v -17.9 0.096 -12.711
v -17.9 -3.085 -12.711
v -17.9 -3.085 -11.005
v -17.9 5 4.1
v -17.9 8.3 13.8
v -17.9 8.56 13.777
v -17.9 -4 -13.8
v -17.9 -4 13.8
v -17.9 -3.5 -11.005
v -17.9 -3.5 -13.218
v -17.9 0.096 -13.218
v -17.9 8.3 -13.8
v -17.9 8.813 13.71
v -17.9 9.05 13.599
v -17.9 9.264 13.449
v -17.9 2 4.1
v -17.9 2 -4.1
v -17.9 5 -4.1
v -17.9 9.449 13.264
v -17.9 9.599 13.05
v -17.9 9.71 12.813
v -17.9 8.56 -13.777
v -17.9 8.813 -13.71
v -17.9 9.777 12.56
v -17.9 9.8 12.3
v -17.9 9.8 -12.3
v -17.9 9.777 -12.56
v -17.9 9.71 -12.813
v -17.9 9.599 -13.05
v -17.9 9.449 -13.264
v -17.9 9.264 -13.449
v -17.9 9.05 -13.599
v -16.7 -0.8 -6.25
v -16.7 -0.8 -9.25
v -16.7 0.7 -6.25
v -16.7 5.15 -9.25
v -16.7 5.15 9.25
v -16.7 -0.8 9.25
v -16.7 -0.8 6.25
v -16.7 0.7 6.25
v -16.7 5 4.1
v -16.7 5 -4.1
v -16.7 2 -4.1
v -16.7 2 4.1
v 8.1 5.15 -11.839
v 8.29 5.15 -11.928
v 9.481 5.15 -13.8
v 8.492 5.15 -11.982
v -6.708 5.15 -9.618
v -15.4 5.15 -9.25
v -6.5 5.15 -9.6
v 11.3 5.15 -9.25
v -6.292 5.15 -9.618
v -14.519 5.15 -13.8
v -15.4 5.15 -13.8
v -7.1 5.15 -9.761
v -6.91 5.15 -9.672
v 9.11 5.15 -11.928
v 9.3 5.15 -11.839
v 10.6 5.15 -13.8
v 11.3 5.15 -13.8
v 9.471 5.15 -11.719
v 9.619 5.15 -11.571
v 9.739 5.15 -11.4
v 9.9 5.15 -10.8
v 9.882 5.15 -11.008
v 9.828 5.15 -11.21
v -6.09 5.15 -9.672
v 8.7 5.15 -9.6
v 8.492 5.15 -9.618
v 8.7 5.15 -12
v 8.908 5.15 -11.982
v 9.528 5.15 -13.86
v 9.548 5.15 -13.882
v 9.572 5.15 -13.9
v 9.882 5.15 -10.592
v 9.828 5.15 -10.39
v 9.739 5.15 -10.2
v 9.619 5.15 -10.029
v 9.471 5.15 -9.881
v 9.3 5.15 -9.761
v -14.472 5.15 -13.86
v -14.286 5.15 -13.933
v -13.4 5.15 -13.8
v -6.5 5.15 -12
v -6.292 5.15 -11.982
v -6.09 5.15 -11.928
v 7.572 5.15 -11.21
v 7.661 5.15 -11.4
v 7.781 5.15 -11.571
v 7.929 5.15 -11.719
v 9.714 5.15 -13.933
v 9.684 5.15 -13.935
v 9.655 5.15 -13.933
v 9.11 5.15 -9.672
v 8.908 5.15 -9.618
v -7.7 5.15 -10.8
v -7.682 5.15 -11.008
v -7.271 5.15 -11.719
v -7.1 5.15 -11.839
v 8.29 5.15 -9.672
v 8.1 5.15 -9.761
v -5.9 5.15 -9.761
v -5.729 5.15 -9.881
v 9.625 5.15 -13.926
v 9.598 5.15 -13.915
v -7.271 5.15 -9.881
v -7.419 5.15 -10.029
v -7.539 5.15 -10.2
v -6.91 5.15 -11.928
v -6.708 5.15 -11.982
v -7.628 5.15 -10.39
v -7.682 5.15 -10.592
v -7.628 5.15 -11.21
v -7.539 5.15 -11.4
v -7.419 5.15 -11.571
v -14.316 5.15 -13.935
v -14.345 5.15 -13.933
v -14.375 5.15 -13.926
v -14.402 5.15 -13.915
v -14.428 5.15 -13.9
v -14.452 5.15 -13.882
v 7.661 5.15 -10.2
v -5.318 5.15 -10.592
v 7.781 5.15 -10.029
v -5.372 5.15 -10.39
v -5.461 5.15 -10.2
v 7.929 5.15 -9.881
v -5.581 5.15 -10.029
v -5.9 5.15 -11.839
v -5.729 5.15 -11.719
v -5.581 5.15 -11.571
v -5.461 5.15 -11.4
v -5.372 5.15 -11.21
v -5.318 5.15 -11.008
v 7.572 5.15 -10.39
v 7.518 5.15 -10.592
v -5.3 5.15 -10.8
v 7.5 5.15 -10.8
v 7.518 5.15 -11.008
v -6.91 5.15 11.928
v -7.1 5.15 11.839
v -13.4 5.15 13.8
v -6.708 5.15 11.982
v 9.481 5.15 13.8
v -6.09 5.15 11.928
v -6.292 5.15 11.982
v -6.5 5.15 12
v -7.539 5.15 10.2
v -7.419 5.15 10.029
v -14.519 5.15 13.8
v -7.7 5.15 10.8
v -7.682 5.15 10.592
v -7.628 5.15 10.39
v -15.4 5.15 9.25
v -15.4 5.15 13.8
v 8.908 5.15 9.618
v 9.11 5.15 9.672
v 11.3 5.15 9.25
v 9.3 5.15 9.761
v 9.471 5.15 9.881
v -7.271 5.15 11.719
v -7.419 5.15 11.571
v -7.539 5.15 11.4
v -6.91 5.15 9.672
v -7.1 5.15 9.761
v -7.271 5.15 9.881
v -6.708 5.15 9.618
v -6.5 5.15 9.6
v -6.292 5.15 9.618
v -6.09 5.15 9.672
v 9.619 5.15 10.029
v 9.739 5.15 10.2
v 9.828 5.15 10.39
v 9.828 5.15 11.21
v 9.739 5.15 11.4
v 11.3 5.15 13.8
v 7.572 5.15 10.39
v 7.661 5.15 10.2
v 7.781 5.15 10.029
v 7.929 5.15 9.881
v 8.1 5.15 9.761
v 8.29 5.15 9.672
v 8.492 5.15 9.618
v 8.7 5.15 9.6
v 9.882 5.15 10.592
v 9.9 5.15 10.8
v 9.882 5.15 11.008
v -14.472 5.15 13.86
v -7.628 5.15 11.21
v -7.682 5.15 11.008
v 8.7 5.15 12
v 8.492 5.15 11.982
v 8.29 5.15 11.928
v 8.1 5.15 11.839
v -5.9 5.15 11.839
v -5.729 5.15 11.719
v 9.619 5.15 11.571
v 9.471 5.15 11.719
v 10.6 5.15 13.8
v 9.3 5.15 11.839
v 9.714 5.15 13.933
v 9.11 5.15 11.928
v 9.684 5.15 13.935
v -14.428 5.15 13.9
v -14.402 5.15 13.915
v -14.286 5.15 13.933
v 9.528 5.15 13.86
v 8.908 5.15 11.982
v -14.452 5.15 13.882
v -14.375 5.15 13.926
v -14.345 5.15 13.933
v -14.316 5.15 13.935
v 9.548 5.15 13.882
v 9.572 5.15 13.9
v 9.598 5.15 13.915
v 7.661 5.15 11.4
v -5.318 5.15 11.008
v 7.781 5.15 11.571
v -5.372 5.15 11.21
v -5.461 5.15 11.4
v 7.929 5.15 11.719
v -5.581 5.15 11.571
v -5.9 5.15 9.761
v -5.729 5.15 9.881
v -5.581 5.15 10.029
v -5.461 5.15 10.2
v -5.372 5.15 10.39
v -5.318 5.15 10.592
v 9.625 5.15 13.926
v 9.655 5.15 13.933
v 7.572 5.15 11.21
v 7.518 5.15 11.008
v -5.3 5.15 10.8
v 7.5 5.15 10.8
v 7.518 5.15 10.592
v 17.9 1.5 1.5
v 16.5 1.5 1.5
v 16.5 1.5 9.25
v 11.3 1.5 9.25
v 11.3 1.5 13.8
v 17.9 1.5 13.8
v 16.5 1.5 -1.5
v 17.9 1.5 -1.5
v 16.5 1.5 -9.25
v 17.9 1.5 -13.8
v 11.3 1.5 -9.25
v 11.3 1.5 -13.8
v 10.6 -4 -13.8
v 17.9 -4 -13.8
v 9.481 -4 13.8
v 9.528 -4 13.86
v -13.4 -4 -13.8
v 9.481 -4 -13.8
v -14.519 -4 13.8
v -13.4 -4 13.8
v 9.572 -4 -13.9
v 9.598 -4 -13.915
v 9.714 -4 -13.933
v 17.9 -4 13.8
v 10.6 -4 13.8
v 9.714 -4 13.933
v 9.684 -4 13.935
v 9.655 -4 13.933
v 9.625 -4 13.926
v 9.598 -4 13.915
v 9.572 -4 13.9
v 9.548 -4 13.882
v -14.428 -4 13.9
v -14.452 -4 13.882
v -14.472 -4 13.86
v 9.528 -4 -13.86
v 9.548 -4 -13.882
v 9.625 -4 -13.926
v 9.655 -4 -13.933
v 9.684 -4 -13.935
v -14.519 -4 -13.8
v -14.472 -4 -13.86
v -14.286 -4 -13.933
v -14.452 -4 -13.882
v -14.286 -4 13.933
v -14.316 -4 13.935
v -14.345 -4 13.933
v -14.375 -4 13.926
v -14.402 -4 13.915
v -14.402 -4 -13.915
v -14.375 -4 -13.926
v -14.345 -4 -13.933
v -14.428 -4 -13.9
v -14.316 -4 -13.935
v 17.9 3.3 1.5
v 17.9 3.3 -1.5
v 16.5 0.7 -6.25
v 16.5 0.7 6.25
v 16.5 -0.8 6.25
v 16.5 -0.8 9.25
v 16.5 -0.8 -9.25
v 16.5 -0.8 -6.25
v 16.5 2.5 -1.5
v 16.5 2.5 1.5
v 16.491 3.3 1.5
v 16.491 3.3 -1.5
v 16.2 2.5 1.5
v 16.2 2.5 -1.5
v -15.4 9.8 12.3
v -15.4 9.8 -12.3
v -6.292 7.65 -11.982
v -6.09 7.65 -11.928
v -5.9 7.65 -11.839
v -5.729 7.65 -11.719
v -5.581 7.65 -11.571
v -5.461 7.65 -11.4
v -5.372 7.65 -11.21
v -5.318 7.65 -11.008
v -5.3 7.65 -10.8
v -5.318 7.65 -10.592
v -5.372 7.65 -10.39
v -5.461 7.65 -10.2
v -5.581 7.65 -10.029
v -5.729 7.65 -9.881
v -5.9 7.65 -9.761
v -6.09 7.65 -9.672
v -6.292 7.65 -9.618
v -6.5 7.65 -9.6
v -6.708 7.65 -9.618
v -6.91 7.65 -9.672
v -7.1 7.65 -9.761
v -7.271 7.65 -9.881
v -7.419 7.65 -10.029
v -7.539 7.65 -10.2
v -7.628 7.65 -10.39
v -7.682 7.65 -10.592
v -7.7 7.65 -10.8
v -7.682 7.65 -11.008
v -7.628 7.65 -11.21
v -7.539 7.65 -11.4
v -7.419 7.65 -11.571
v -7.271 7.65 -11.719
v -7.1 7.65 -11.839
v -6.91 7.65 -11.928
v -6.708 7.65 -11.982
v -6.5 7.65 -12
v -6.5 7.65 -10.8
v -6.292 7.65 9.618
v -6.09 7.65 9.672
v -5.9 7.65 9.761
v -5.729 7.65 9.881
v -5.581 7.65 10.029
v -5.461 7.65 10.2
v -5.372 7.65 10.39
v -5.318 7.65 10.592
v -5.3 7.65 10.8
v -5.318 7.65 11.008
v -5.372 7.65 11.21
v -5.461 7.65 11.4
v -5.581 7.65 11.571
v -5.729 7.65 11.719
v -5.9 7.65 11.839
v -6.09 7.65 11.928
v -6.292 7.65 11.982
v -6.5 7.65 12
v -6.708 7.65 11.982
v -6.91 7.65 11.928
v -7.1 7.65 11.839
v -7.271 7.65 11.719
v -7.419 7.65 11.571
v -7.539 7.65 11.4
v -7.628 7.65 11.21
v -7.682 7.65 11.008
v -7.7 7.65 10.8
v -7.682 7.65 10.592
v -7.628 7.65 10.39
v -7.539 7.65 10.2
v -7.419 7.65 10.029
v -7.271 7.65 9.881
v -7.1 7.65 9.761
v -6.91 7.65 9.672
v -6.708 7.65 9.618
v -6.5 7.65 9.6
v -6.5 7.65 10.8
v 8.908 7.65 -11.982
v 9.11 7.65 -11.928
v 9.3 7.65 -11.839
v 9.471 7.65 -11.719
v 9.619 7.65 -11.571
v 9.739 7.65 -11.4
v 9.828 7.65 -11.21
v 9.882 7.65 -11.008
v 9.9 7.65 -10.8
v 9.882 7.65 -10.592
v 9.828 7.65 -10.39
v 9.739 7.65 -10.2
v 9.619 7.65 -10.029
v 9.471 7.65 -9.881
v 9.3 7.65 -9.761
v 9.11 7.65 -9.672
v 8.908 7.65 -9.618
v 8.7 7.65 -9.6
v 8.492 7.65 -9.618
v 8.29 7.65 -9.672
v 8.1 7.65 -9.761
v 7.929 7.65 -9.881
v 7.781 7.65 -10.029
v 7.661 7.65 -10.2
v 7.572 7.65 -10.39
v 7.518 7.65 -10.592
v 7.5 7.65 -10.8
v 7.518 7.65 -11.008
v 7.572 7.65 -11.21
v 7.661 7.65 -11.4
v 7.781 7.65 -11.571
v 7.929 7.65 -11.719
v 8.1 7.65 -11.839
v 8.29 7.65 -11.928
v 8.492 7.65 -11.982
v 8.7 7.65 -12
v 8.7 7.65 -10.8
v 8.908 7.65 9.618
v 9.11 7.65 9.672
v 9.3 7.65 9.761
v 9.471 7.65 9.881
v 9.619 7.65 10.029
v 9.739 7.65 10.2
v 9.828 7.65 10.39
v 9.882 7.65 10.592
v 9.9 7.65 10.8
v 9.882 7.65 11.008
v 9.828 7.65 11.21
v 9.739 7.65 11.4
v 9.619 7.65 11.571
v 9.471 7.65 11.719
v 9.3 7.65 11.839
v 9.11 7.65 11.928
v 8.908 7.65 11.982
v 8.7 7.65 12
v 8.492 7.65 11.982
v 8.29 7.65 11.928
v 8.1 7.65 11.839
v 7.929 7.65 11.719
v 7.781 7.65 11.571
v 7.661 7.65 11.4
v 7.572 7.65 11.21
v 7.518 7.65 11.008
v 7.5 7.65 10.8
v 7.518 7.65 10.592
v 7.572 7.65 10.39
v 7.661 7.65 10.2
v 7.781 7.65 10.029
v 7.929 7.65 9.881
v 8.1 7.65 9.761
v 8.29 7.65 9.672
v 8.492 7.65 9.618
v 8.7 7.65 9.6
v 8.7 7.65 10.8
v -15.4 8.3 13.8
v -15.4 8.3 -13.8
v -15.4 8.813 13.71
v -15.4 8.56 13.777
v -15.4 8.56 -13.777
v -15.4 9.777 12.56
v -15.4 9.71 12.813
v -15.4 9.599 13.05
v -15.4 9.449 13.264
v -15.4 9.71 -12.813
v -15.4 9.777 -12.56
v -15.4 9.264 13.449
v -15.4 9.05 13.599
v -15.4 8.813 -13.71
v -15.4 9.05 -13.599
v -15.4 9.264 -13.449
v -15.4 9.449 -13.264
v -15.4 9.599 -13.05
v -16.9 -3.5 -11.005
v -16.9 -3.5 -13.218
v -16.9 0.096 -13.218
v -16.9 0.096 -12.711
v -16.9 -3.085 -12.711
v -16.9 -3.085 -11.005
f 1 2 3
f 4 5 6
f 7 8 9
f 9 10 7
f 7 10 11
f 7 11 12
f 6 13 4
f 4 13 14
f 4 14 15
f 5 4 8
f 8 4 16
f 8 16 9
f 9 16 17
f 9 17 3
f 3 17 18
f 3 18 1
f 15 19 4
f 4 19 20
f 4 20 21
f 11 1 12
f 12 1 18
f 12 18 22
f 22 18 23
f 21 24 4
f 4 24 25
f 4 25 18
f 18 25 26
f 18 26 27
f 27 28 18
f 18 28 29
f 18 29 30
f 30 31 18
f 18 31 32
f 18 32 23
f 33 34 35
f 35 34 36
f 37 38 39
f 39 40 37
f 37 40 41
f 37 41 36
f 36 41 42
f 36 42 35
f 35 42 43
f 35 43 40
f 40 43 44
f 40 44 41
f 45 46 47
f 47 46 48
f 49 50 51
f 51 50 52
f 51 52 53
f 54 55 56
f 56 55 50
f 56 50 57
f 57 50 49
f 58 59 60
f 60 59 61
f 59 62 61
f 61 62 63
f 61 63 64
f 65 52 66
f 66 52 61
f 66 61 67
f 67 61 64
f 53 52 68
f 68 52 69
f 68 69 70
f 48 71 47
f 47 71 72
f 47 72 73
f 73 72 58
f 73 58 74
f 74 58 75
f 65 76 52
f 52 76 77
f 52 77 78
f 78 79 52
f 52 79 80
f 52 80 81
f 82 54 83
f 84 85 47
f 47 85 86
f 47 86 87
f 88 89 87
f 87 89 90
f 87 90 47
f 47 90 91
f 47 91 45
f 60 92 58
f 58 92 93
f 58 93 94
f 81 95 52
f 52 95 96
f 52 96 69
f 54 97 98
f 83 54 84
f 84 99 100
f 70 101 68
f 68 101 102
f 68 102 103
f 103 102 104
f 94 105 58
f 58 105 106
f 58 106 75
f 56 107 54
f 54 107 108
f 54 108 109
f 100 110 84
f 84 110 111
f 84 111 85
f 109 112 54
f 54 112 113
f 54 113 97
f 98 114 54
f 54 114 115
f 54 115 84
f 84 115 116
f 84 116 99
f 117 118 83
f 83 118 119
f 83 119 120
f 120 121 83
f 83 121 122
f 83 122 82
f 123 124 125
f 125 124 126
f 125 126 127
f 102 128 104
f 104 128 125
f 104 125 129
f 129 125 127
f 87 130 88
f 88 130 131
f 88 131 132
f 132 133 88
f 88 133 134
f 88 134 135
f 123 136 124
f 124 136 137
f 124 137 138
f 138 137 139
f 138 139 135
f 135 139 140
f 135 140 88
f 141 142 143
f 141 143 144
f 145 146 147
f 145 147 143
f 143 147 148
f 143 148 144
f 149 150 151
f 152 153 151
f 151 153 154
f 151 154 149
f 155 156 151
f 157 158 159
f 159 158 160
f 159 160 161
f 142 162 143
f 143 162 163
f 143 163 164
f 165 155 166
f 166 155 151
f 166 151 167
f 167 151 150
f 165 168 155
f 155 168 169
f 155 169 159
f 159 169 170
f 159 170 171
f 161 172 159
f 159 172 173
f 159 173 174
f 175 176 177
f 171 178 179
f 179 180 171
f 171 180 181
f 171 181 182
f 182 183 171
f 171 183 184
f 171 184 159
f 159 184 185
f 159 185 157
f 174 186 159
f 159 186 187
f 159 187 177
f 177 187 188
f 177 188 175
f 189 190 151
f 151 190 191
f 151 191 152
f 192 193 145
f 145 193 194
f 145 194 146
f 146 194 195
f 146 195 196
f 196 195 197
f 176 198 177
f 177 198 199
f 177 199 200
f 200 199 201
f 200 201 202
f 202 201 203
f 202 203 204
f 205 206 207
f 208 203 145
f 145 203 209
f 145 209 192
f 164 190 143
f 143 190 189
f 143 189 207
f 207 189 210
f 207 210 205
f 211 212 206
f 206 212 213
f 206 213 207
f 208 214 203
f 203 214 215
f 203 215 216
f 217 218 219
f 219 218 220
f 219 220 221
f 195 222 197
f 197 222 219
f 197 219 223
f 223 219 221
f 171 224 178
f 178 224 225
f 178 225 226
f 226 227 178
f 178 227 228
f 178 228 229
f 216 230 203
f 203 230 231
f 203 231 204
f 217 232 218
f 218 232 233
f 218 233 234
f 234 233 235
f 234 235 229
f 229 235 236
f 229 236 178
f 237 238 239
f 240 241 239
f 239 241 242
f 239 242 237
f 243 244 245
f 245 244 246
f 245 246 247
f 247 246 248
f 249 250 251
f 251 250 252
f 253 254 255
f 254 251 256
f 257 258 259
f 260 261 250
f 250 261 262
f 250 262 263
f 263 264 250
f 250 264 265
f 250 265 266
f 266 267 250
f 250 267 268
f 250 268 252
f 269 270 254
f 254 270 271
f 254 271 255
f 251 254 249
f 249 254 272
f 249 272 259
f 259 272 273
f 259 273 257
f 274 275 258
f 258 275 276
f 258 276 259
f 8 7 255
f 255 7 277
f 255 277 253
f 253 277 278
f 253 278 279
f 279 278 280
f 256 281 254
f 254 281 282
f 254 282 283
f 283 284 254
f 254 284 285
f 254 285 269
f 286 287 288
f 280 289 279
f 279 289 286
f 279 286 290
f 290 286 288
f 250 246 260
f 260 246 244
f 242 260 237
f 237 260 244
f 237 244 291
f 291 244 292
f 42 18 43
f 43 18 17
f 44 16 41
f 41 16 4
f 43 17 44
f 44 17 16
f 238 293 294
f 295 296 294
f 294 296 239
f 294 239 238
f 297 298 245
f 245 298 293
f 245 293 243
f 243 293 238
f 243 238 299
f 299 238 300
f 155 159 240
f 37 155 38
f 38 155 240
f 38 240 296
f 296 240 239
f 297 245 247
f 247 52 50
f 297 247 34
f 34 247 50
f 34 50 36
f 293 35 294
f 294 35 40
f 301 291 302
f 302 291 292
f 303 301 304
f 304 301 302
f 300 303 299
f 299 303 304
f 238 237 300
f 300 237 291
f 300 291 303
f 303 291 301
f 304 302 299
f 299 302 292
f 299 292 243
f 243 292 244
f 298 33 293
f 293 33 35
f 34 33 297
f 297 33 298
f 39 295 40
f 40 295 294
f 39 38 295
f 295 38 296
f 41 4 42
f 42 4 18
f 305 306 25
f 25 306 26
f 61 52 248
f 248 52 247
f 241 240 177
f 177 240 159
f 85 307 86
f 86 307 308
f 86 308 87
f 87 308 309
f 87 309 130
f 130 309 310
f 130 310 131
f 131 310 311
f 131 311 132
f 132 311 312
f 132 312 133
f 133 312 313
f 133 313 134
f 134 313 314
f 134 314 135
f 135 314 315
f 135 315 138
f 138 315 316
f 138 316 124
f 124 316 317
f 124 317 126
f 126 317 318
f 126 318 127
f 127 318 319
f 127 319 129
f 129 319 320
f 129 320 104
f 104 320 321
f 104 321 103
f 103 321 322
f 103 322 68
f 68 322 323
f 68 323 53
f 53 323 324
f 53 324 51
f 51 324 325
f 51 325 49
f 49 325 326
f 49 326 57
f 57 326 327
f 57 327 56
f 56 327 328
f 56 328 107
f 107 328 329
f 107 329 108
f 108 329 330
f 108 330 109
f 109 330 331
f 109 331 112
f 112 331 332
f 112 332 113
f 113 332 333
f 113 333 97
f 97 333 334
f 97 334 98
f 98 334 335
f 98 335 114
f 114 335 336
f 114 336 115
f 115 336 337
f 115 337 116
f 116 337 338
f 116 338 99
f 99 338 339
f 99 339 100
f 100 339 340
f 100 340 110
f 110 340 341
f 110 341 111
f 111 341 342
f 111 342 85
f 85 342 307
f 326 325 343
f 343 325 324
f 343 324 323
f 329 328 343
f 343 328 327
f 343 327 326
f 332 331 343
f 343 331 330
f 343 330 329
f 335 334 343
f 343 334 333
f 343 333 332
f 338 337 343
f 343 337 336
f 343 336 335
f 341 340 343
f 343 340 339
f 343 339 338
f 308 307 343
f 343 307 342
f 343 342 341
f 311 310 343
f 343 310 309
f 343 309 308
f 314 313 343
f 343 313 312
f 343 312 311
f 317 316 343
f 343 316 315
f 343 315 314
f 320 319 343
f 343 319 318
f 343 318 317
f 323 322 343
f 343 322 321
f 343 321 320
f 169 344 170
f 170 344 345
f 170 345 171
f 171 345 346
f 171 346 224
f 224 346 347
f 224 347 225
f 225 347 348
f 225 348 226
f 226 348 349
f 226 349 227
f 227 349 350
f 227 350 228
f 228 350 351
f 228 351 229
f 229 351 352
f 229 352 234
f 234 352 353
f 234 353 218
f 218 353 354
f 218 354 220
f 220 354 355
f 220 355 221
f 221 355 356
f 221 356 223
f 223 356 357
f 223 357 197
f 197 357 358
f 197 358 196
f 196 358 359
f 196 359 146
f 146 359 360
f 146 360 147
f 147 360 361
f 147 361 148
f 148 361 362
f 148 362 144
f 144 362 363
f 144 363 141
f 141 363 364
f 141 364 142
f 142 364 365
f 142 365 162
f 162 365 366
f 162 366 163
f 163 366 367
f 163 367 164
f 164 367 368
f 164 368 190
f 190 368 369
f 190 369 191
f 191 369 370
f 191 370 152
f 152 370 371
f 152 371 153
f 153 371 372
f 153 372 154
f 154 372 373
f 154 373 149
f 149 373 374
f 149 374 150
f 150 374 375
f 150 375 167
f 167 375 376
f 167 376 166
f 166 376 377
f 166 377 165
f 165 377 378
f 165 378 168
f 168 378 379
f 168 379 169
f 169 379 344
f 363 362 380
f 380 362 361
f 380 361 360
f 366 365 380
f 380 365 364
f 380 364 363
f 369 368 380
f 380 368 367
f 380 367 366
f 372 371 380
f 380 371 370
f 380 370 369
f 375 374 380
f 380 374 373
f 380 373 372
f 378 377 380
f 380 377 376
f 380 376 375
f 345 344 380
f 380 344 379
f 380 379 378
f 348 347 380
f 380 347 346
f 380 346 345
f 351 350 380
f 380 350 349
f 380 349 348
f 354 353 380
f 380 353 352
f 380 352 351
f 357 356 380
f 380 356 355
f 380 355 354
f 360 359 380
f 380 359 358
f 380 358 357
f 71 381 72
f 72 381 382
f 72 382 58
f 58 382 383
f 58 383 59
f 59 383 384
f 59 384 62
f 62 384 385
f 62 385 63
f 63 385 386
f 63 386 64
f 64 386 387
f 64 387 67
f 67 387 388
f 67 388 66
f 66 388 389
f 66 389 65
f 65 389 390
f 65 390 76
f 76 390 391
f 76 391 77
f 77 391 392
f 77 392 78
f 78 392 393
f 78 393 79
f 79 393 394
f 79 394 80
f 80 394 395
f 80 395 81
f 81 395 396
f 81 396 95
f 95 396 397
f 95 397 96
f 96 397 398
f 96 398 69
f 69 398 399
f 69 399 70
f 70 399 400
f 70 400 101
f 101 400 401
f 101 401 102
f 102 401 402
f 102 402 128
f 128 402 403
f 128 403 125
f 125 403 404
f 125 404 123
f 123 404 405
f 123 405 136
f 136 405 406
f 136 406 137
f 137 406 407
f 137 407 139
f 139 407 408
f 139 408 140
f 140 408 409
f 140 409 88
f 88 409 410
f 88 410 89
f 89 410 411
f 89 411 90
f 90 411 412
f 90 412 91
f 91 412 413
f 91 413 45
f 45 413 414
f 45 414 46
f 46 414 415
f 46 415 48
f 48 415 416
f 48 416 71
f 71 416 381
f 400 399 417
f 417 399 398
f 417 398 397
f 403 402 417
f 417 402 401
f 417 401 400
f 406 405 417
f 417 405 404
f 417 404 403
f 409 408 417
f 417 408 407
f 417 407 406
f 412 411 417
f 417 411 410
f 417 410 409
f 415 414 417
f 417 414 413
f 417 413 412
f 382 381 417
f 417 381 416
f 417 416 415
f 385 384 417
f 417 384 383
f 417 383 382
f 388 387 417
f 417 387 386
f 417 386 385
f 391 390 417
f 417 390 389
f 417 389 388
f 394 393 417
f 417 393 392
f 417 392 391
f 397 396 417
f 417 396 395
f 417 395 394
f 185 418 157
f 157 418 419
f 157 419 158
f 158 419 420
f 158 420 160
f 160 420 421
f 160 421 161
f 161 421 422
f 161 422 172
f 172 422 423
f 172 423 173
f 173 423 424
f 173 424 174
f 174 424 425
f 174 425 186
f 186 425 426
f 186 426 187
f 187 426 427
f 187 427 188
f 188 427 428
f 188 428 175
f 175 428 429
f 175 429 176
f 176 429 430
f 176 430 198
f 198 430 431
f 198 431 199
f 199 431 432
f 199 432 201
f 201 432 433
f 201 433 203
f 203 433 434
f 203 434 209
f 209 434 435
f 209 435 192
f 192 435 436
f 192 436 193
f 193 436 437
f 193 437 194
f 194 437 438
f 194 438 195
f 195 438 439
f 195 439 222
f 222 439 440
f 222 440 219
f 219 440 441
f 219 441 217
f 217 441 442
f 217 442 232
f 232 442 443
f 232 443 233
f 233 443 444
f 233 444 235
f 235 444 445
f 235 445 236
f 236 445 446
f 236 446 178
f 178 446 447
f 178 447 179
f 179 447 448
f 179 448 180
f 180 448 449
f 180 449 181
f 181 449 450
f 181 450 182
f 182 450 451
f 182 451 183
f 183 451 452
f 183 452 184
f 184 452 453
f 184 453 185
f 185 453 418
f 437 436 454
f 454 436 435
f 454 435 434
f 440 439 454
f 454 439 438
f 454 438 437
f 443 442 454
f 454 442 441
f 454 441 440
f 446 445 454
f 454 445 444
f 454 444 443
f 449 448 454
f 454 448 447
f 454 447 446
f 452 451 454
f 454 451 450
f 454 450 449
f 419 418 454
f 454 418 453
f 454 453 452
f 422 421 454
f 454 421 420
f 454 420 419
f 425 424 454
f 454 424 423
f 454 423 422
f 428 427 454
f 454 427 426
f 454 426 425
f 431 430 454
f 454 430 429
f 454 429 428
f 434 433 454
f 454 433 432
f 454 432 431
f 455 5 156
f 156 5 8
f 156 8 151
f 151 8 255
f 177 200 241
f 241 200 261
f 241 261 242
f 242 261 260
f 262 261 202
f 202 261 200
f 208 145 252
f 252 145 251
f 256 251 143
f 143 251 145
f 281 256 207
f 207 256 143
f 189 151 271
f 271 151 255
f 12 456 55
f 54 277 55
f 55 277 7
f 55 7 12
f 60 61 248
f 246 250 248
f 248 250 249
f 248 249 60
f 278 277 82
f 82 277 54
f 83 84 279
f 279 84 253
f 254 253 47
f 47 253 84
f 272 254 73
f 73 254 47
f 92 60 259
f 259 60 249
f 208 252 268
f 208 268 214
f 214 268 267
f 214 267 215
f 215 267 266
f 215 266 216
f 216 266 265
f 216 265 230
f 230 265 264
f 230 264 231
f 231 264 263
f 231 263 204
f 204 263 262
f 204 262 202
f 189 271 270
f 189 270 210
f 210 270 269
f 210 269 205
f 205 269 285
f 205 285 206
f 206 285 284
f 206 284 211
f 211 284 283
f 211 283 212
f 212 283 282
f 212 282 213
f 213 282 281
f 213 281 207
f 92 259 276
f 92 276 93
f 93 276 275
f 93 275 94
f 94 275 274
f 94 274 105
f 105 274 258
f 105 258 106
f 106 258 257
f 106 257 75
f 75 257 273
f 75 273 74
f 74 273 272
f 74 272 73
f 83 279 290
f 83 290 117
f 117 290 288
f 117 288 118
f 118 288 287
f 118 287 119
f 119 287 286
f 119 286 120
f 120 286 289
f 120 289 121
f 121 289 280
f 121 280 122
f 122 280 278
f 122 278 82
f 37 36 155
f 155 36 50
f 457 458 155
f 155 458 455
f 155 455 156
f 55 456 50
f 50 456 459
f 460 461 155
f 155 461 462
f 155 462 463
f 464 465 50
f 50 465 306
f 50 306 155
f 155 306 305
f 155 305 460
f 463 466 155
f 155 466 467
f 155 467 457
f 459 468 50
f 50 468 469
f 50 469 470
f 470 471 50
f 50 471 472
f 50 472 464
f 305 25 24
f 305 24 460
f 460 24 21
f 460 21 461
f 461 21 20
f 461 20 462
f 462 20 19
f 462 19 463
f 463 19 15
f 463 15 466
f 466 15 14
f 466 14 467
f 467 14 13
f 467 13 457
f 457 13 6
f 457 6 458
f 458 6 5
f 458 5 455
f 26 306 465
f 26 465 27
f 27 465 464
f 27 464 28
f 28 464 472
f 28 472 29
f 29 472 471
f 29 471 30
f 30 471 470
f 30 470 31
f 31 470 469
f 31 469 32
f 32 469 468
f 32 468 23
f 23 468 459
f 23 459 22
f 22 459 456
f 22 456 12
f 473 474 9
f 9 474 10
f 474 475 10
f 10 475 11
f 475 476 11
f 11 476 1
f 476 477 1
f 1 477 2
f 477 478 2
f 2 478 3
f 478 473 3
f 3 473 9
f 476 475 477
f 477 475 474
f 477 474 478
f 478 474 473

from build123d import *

# Parameters (mm, degrees)
SKIZZE2_W                       = 28
SKIZZE2_H                       = 4
AUFSATZ_LINEAR_AUSTRAGEN2_DEPTH = 17.9
SKIZZE4_W                       = 35.8
SKIZZE4_H                       = 28
AUFSATZ_LINEAR_AUSTRAGEN3_DEPTH = 5
SKIZZE7_W                       = 8.2
SKIZZE7_H                       = 3
SCHNITT_LINEAR_AUSTRAGEN4_DEPTH = 1.5
SKIZZE5_W                       = 33.2
SKIZZE5_H                       = 18.5
SCHNITT_LINEAR_AUSTRAGEN2_DEPTH = 4.3
SKIZZE8_W                       = 34.6
SKIZZE8_H                       = 28
SCHNITT_LINEAR_AUSTRAGEN5_DEPTH = 3.5
AUFSATZ_LINEAR_AUSTRAGEN4_DEPTH = 1.5
SKIZZE9_W                       = 33.2
SKIZZE9_H                       = 3
SCHNITT_LINEAR_AUSTRAGEN6_DEPTH = 1.5
SKIZZE11_W                      = 28
SKIZZE11_H                      = 4.8
AUFSATZ_LINEAR_AUSTRAGEN5_DEPTH = 1.2
SKIZZE12_W                      = 28
SKIZZE12_H                      = 4.75
AUFSATZ_LINEAR_AUSTRAGEN6_DEPTH = 3.65
SKIZZE13_R                      = 1.2
AUFSATZ_LINEAR_AUSTRAGEN7_DEPTH = 2.5
LINEARES_MUSTER1_COUNT          = 2
LINEARES_MUSTER1_PITCH          = 15.2
LINEARES_MUSTER1_COUNT_DIR2     = 2
LINEARES_MUSTER1_PITCH_DIR2     = 21.6
SCHNITT_LINEAR_AUSTRAGEN7_DEPTH = 14.8
VERRUNDUNG1_R                   = 0.2
SKIZZE20_W                      = 27.6
SKIZZE20_H                      = 4.65
AUFSATZ_LINEAR_AUSTRAGEN8_DEPTH = 1.3
VERRUNDUNG2_R                   = 1.5
SCHNITT_LINEAR_AUSTRAGEN8_DEPTH = 1


with BuildPart() as part:
    # Skizze2 → Aufsatz-Linear austragen2 (new body, symmetric)
    with BuildSketch(Plane(origin=(0, 0, 0), x_dir=(0, 0, -1), z_dir=(1, 0, 0))):
        with Locations((0, -2)):
            Rectangle(SKIZZE2_W, SKIZZE2_H)
    extrude(amount=AUFSATZ_LINEAR_AUSTRAGEN2_DEPTH, both=True)

    # Skizze4 → Aufsatz-Linear austragen3 (add)
    with BuildSketch(Plane(origin=(0, 0, 0), x_dir=(1, 0, 0), z_dir=(0, 1, 0))):
        Rectangle(SKIZZE4_W, SKIZZE4_H)
    extrude(amount=AUFSATZ_LINEAR_AUSTRAGEN3_DEPTH)

    # Skizze7 → Schnitt-Linear austragen4 (cut)
    with BuildSketch(Plane.ZY.offset(17.9)):
        with Locations((0, 3.5)):
            Rectangle(SKIZZE7_W, SKIZZE7_H)
    extrude(amount=-SCHNITT_LINEAR_AUSTRAGEN4_DEPTH, mode=Mode.SUBTRACT)

    # Skizze5 → Schnitt-Linear austragen2 (cut)
    with BuildSketch(Plane(origin=(0, 5, 0), x_dir=(1, 0, 0), z_dir=(0, 1, 0))):
        with Locations((-0.1, 0)):
            Rectangle(SKIZZE5_W, SKIZZE5_H)
    extrude(amount=-SCHNITT_LINEAR_AUSTRAGEN2_DEPTH, mode=Mode.SUBTRACT)

    # Skizze8 → Schnitt-Linear austragen5 (cut)
    with BuildSketch(Plane(origin=(0, 5, 0), x_dir=(1, 0, 0), z_dir=(0, 1, 0))):
        with Locations((0.6, 0)):
            Rectangle(SKIZZE8_W, SKIZZE8_H)
    extrude(amount=-SCHNITT_LINEAR_AUSTRAGEN5_DEPTH, mode=Mode.SUBTRACT)

    # Skizze10 → Aufsatz-Linear austragen4 (add, symmetric)
    with BuildSketch(Plane.XY):
        Polygon((17.9, 1.5), (16.5, 1.5), (16.5, 2.5), (16.2, 2.5), (16.491176187, 3.3), (17.9, 3.3), align=None)
    extrude(amount=AUFSATZ_LINEAR_AUSTRAGEN4_DEPTH, both=True)

    # Skizze9 → Schnitt-Linear austragen6 (cut)
    with BuildSketch(Plane(origin=(0, 0.7, 0), x_dir=(1, 0, 0), z_dir=(0, 1, 0))):
        with Locations((-0.1, -7.75)):
            Rectangle(SKIZZE9_W, SKIZZE9_H)
        with Locations((-0.1, 7.75)):
            Rectangle(SKIZZE9_W, SKIZZE9_H)
    extrude(amount=-SCHNITT_LINEAR_AUSTRAGEN6_DEPTH, mode=Mode.SUBTRACT)

    # Skizze11 → Aufsatz-Linear austragen5 (add)
    with BuildSketch(Plane.ZY.offset(17.9)):
        with Locations((0, 7.4)):
            Rectangle(SKIZZE11_W, SKIZZE11_H)
    extrude(amount=-AUFSATZ_LINEAR_AUSTRAGEN5_DEPTH)

    # Skizze12 → Aufsatz-Linear austragen6 (add)
    with BuildSketch(Plane(origin=(0, 1.5, 0), x_dir=(1, 0, 0), z_dir=(0, 1, 0))):
        with Locations((-2.7, 11.625)):
            Rectangle(SKIZZE12_W, SKIZZE12_H)
        with Locations((-2.7, -11.625)):
            Rectangle(SKIZZE12_W, SKIZZE12_H)
    extrude(amount=AUFSATZ_LINEAR_AUSTRAGEN6_DEPTH)

    # Skizze13 → Aufsatz-Linear austragen7 (add)
    with BuildSketch(Plane(origin=(0, 5.15, 0), x_dir=(1, 0, 0), z_dir=(0, 1, 0))):
        with Locations((-6.5, 10.8)):
            Circle(SKIZZE13_R)
    aufsatz_linear_austragen7 = extrude(amount=AUFSATZ_LINEAR_AUSTRAGEN7_DEPTH)

    # Lineares Muster1: Aufsatz-Linear austragen7 2 × 2
    with Locations(*[(i * LINEARES_MUSTER1_PITCH, 0, j * LINEARES_MUSTER1_PITCH_DIR2) for i in range(LINEARES_MUSTER1_COUNT) for j in range(LINEARES_MUSTER1_COUNT_DIR2) if (i, j) != (0, 0)]):
        add(aufsatz_linear_austragen7)

    # Skizze14 → Schnitt-Linear austragen7 (cut, through all)
    with BuildSketch(Plane.XZ.offset(4)):
        Polygon((-17.9, -14), (-17.9, -13.8), (-14.51944695, -13.8), (-14.4, -13.95), (-13.4, -13.8), (9.48055305, -13.8), (9.6, -13.95), (10.6, -13.8), (17.9, -13.8), (17.9, -14), align=None)
        Polygon((10.6, 13.8), (17.9, 13.8), (17.9, 14), (-17.9, 14), (-17.9, 13.8), (-14.51944695, 13.8), (-14.4, 13.95), (-13.4, 13.8), (9.48055305, 13.8), (9.6, 13.95), align=None)
    extrude(amount=-SCHNITT_LINEAR_AUSTRAGEN7_DEPTH, mode=Mode.SUBTRACT)

    # Verrundung1
    verrundung1_edges = [part.edges().sort_by_distance(p)[0] for p in [
        (-14.4, 0.575, -13.95),
        (9.6, 0.575, -13.95),
        (9.6, 0.575, 13.95),
        (-14.4, 0.575, 13.95),
    ]]
    fillet(verrundung1_edges, radius=VERRUNDUNG1_R)

    # Skizze20 → Aufsatz-Linear austragen8 (add)
    with BuildSketch(Plane(origin=(-16.7, 0, 0), x_dir=(0, 0, -1), z_dir=(1, 0, 0))):
        with Locations((0, 7.475)):
            Rectangle(SKIZZE20_W, SKIZZE20_H)
    extrude(amount=AUFSATZ_LINEAR_AUSTRAGEN8_DEPTH)

    # Verrundung2
    verrundung2_edges = [part.edges().sort_by_distance(p)[0] for p in [
        (-16.65, 9.8, -13.8),
        (-16.65, 9.8, 13.8),
    ]]
    fillet(verrundung2_edges, radius=VERRUNDUNG2_R)

    # Skizze21 → Schnitt-Linear austragen8 (cut)
    with BuildSketch(Plane.ZY.offset(17.9)):
        Polygon((-13.218058581, -3.5), (-13.218058581, 0.095646159), (-12.710980277, 0.095646159), (-12.710980277, -3.085117751), (-11.005353253, -3.085117751), (-11.005353253, -3.5), align=None)
    extrude(amount=-SCHNITT_LINEAR_AUSTRAGEN8_DEPTH, mode=Mode.SUBTRACT)


solid = part.part
